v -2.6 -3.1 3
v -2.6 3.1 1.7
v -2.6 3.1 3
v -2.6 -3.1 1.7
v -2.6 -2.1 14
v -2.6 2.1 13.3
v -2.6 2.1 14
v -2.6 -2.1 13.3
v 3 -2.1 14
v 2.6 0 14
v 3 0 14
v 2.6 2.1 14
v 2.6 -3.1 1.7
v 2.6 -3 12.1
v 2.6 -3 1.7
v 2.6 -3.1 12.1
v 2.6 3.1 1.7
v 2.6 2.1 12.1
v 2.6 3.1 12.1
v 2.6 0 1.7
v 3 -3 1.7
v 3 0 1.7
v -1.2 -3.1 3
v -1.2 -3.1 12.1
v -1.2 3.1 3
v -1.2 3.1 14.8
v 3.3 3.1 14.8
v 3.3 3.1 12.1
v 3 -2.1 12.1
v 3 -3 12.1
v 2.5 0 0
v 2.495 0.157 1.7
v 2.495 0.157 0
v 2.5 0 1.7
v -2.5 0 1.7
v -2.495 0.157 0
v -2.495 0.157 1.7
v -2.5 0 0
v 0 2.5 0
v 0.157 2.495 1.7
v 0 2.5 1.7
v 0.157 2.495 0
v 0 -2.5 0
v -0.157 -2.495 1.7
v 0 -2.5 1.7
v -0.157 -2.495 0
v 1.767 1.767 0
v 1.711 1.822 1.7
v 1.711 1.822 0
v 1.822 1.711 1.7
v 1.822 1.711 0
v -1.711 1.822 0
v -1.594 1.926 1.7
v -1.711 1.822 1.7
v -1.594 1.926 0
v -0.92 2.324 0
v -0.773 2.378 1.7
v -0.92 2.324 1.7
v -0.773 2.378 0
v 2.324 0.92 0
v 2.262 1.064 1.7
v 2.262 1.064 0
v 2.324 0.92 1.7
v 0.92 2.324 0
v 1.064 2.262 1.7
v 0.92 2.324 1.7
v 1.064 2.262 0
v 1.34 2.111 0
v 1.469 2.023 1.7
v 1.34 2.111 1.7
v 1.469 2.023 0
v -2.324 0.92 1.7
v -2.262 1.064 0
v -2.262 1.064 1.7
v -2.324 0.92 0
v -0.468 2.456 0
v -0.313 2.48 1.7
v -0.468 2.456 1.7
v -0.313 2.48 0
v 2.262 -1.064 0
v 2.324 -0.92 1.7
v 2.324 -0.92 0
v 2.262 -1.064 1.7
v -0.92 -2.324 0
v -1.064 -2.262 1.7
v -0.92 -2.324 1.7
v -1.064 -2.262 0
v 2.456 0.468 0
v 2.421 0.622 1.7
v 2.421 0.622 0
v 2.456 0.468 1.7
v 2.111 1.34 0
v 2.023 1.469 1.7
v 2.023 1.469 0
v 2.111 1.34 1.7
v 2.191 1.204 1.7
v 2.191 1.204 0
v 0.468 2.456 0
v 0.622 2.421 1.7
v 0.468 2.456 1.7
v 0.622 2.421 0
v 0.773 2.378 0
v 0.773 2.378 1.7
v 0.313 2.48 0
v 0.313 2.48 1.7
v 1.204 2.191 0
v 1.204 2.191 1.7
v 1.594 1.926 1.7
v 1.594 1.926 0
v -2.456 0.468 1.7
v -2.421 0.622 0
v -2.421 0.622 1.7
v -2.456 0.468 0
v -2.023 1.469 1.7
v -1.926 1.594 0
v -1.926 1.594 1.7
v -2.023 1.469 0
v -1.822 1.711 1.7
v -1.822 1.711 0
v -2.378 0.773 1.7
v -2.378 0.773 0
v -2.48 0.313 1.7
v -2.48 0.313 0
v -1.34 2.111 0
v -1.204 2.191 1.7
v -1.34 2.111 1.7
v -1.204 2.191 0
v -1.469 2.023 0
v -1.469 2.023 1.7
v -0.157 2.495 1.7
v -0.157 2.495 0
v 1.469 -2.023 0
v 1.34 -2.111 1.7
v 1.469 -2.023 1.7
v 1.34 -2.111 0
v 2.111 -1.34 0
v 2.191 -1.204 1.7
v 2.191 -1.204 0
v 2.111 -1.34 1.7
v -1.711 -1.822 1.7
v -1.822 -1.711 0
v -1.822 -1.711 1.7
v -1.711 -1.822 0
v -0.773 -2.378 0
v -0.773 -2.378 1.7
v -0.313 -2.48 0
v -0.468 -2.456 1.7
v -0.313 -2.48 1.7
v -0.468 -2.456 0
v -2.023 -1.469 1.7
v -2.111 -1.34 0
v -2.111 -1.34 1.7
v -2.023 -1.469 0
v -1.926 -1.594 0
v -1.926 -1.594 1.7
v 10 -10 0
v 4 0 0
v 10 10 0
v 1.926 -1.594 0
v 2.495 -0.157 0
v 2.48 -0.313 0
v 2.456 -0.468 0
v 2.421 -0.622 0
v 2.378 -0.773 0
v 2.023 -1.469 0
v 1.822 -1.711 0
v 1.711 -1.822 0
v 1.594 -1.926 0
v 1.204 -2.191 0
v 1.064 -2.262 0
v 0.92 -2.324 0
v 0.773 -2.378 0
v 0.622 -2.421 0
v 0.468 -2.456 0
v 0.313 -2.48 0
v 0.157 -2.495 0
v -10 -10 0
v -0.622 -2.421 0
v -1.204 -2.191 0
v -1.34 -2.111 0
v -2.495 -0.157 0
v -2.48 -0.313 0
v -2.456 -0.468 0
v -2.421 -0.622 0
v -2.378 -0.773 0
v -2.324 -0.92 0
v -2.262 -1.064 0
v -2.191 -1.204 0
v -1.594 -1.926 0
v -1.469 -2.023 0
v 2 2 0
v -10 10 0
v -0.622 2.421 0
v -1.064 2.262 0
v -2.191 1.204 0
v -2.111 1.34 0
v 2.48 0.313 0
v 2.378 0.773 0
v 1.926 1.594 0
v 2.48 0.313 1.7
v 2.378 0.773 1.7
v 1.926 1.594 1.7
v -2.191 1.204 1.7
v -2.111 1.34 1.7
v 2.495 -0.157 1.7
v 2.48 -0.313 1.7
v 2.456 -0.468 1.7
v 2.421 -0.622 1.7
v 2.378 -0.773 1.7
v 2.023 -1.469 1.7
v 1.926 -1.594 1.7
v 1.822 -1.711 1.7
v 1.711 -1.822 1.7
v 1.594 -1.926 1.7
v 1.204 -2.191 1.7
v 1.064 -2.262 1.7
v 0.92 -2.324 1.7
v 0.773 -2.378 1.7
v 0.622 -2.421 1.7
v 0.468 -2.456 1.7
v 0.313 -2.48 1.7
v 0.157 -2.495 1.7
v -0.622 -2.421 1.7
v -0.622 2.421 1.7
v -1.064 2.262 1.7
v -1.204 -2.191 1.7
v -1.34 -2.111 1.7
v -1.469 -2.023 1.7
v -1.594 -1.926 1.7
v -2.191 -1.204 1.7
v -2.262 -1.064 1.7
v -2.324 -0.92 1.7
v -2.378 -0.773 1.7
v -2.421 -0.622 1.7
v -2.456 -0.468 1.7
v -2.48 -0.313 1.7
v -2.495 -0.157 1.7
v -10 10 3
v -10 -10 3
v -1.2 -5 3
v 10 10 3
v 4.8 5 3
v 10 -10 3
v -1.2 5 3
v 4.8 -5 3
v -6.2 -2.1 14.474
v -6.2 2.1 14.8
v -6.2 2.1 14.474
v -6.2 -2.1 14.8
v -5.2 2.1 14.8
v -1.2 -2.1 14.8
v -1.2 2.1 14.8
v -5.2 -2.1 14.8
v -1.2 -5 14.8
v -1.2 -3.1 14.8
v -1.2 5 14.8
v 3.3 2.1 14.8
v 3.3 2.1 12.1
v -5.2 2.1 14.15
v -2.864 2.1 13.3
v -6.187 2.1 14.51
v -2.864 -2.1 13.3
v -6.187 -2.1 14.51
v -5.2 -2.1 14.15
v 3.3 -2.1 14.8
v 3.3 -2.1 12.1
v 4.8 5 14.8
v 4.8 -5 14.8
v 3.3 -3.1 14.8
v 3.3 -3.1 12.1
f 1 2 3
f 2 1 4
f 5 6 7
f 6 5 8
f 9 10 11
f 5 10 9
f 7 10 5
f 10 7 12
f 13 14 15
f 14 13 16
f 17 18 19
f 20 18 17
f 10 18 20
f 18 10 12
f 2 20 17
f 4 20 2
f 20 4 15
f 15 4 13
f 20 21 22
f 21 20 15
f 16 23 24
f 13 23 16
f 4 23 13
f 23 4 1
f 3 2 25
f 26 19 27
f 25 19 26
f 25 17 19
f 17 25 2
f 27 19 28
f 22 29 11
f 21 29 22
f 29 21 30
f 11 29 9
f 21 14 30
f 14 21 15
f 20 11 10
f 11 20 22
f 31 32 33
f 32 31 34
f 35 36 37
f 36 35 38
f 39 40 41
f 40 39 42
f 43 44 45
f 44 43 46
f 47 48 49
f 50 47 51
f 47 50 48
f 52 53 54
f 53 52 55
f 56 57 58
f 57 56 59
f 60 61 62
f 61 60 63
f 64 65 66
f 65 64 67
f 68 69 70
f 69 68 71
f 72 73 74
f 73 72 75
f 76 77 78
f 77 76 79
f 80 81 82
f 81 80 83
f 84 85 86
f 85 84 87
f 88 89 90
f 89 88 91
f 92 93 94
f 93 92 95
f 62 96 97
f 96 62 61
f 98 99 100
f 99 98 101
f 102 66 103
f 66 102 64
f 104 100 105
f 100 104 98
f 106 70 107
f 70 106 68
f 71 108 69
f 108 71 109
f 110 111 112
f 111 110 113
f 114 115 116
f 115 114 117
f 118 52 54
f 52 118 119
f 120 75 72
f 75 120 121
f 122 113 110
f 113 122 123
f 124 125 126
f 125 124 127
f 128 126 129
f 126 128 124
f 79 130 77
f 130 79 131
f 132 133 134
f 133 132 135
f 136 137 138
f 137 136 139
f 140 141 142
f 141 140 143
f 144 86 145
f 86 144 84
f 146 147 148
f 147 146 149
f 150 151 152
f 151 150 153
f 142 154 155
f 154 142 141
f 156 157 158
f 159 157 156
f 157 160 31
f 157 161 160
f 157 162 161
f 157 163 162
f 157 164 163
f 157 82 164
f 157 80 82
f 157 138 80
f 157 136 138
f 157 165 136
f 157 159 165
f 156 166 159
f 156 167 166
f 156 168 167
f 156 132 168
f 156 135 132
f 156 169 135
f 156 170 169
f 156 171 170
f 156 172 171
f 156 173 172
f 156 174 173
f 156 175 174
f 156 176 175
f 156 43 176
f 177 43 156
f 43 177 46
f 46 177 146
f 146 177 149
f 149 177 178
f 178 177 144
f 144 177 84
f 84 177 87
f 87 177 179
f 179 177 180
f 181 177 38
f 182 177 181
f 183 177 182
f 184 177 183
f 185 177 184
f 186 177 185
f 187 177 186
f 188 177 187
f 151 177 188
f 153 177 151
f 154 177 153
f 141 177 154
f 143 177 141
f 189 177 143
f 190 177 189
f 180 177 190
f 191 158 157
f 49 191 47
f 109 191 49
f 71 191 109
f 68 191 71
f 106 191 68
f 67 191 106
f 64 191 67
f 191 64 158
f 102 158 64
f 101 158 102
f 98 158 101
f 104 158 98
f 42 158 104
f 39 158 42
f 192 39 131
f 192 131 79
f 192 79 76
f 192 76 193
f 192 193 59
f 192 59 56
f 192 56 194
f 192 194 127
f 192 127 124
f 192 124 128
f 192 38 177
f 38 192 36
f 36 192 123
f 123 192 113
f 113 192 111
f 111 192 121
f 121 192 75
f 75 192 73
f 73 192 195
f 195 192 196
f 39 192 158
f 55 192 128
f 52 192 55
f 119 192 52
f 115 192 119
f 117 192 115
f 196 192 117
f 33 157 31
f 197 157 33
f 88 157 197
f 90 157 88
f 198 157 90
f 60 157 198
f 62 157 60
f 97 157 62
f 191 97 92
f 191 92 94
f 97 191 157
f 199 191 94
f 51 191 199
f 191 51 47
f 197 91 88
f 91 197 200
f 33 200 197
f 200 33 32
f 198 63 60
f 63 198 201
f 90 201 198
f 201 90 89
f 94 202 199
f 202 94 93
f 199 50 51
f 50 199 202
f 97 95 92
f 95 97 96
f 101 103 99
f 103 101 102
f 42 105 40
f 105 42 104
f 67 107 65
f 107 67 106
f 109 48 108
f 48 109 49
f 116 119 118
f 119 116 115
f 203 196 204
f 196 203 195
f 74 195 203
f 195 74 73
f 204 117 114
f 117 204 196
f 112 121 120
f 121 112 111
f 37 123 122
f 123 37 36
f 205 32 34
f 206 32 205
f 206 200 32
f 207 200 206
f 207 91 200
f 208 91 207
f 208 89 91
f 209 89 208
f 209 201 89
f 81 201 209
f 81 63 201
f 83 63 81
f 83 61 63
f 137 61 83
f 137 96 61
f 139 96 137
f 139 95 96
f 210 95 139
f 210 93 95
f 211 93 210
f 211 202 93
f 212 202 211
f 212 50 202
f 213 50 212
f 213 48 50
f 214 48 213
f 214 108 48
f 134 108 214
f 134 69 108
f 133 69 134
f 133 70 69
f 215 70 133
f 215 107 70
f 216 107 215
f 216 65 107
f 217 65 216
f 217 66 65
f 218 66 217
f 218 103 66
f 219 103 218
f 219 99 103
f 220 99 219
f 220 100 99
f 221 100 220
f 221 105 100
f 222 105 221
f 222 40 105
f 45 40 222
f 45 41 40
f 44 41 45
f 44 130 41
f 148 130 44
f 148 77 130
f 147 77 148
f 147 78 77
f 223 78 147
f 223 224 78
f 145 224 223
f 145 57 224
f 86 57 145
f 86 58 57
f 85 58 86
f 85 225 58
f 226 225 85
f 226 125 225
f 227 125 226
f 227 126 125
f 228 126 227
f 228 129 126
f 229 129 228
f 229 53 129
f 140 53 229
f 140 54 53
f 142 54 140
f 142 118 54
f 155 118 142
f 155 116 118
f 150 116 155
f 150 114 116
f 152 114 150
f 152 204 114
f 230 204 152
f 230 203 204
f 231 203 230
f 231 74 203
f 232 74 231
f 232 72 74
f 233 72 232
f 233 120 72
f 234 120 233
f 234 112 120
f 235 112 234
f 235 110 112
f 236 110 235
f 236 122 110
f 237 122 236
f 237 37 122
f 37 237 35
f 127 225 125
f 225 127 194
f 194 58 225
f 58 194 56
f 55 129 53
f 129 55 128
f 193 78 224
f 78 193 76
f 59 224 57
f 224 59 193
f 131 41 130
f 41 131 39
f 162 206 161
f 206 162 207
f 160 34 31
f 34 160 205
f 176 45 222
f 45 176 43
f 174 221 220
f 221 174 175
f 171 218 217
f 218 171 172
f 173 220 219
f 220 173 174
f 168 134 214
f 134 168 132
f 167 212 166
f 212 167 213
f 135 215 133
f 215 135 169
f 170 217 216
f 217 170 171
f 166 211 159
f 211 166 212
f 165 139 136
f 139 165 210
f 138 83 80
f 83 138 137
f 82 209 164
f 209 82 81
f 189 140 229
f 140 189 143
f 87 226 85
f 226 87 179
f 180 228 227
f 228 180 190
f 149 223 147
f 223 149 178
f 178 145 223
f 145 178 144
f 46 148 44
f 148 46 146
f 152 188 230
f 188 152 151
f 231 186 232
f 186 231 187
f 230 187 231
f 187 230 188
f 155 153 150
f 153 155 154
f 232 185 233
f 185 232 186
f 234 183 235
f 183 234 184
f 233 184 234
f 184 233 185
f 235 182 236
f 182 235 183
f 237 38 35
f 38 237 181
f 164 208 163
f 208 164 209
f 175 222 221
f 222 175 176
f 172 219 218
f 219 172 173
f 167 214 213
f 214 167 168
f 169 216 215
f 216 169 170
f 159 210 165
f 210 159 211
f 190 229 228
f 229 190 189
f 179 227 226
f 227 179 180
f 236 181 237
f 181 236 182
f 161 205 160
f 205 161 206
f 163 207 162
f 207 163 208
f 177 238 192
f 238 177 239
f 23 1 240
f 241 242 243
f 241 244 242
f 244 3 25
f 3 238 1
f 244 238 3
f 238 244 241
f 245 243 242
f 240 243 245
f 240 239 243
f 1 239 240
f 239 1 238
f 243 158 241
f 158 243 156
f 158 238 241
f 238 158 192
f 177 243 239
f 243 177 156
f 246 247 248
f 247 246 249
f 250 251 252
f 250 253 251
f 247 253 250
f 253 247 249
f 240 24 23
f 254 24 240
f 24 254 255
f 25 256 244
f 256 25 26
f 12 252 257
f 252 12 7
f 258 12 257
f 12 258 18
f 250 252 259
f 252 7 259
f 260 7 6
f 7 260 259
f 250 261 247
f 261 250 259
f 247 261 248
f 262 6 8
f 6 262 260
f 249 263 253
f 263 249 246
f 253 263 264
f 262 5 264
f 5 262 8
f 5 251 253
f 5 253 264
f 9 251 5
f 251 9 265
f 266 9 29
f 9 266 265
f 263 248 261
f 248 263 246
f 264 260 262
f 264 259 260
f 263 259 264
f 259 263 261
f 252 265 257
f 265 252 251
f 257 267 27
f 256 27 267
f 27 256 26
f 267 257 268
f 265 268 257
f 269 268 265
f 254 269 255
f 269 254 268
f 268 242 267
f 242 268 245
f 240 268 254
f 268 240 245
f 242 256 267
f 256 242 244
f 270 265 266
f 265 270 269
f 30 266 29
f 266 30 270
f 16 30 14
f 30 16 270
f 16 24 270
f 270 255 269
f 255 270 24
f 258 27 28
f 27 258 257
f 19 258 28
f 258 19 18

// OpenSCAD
difference () {
  union () {
    difference () {
      translate ([0, 0, 1.5]) {
        cube ([20, 20, 3], center=true);
      }
      translate ([0, 0, 0]) {
        union () {
          polyhedron (points=[[0, 0, 0], [4, 0, 0], [2, 2, 0], [0, 0, -1], [4, 5, -1], [2, 5, -1]], faces=[[0, 1, 2], [3, 4, 5], [0, 1, 4, 3], [0, 2, 5, 3], [2, 1, 4, 5]]);
          cube ([2, 10, -1], center=true);
        }
      }
    }
    translate ([-1.2000000000000002, -5, 1.7]) {
      difference () {
        union () {
          cube ([6, 10, 13.1]);
          translate ([1, 2.5, 13.1]) {
            difference () {
              translate ([-6, 0.4, -1.5]) {
                cube ([5, 4.2, 1.5]);
              }
              translate ([-6.5, 0.4, -1.7]) {
                rotate (a=20.0, v=[0, 1, 0]) {
                  cube ([4, 4.2, 1.5]);
                }
              }
            }
          }
        }
        translate ([-4, 1.9, 10.4]) {
          cube ([8.5, 1, 3]);
        }
        translate ([-4, 7.1, 10.4]) {
          cube ([8.5, 1, 3]);
        }
      }
    }
  }
  union () {
    cylinder ($fn=100, h=1.7, r=5/2);
    translate ([0, 0, 7.85]) {
      union () {
        cube ([5.2, 6.2, 12.299999999999999], center=true);
        translate ([5/2, -1.5, 0]) {
          cube ([1, 3, 12.299999999999999], center=true);
        }
        translate ([-5, -2.75, 1.25]) {
          cube ([5, 0.5, 8], center=true);
        }
        translate ([-5, 2.75, 5.3]) {
          cube ([5, 0.5, 1.5], center=true);
        }
      }
    }
  }
}
